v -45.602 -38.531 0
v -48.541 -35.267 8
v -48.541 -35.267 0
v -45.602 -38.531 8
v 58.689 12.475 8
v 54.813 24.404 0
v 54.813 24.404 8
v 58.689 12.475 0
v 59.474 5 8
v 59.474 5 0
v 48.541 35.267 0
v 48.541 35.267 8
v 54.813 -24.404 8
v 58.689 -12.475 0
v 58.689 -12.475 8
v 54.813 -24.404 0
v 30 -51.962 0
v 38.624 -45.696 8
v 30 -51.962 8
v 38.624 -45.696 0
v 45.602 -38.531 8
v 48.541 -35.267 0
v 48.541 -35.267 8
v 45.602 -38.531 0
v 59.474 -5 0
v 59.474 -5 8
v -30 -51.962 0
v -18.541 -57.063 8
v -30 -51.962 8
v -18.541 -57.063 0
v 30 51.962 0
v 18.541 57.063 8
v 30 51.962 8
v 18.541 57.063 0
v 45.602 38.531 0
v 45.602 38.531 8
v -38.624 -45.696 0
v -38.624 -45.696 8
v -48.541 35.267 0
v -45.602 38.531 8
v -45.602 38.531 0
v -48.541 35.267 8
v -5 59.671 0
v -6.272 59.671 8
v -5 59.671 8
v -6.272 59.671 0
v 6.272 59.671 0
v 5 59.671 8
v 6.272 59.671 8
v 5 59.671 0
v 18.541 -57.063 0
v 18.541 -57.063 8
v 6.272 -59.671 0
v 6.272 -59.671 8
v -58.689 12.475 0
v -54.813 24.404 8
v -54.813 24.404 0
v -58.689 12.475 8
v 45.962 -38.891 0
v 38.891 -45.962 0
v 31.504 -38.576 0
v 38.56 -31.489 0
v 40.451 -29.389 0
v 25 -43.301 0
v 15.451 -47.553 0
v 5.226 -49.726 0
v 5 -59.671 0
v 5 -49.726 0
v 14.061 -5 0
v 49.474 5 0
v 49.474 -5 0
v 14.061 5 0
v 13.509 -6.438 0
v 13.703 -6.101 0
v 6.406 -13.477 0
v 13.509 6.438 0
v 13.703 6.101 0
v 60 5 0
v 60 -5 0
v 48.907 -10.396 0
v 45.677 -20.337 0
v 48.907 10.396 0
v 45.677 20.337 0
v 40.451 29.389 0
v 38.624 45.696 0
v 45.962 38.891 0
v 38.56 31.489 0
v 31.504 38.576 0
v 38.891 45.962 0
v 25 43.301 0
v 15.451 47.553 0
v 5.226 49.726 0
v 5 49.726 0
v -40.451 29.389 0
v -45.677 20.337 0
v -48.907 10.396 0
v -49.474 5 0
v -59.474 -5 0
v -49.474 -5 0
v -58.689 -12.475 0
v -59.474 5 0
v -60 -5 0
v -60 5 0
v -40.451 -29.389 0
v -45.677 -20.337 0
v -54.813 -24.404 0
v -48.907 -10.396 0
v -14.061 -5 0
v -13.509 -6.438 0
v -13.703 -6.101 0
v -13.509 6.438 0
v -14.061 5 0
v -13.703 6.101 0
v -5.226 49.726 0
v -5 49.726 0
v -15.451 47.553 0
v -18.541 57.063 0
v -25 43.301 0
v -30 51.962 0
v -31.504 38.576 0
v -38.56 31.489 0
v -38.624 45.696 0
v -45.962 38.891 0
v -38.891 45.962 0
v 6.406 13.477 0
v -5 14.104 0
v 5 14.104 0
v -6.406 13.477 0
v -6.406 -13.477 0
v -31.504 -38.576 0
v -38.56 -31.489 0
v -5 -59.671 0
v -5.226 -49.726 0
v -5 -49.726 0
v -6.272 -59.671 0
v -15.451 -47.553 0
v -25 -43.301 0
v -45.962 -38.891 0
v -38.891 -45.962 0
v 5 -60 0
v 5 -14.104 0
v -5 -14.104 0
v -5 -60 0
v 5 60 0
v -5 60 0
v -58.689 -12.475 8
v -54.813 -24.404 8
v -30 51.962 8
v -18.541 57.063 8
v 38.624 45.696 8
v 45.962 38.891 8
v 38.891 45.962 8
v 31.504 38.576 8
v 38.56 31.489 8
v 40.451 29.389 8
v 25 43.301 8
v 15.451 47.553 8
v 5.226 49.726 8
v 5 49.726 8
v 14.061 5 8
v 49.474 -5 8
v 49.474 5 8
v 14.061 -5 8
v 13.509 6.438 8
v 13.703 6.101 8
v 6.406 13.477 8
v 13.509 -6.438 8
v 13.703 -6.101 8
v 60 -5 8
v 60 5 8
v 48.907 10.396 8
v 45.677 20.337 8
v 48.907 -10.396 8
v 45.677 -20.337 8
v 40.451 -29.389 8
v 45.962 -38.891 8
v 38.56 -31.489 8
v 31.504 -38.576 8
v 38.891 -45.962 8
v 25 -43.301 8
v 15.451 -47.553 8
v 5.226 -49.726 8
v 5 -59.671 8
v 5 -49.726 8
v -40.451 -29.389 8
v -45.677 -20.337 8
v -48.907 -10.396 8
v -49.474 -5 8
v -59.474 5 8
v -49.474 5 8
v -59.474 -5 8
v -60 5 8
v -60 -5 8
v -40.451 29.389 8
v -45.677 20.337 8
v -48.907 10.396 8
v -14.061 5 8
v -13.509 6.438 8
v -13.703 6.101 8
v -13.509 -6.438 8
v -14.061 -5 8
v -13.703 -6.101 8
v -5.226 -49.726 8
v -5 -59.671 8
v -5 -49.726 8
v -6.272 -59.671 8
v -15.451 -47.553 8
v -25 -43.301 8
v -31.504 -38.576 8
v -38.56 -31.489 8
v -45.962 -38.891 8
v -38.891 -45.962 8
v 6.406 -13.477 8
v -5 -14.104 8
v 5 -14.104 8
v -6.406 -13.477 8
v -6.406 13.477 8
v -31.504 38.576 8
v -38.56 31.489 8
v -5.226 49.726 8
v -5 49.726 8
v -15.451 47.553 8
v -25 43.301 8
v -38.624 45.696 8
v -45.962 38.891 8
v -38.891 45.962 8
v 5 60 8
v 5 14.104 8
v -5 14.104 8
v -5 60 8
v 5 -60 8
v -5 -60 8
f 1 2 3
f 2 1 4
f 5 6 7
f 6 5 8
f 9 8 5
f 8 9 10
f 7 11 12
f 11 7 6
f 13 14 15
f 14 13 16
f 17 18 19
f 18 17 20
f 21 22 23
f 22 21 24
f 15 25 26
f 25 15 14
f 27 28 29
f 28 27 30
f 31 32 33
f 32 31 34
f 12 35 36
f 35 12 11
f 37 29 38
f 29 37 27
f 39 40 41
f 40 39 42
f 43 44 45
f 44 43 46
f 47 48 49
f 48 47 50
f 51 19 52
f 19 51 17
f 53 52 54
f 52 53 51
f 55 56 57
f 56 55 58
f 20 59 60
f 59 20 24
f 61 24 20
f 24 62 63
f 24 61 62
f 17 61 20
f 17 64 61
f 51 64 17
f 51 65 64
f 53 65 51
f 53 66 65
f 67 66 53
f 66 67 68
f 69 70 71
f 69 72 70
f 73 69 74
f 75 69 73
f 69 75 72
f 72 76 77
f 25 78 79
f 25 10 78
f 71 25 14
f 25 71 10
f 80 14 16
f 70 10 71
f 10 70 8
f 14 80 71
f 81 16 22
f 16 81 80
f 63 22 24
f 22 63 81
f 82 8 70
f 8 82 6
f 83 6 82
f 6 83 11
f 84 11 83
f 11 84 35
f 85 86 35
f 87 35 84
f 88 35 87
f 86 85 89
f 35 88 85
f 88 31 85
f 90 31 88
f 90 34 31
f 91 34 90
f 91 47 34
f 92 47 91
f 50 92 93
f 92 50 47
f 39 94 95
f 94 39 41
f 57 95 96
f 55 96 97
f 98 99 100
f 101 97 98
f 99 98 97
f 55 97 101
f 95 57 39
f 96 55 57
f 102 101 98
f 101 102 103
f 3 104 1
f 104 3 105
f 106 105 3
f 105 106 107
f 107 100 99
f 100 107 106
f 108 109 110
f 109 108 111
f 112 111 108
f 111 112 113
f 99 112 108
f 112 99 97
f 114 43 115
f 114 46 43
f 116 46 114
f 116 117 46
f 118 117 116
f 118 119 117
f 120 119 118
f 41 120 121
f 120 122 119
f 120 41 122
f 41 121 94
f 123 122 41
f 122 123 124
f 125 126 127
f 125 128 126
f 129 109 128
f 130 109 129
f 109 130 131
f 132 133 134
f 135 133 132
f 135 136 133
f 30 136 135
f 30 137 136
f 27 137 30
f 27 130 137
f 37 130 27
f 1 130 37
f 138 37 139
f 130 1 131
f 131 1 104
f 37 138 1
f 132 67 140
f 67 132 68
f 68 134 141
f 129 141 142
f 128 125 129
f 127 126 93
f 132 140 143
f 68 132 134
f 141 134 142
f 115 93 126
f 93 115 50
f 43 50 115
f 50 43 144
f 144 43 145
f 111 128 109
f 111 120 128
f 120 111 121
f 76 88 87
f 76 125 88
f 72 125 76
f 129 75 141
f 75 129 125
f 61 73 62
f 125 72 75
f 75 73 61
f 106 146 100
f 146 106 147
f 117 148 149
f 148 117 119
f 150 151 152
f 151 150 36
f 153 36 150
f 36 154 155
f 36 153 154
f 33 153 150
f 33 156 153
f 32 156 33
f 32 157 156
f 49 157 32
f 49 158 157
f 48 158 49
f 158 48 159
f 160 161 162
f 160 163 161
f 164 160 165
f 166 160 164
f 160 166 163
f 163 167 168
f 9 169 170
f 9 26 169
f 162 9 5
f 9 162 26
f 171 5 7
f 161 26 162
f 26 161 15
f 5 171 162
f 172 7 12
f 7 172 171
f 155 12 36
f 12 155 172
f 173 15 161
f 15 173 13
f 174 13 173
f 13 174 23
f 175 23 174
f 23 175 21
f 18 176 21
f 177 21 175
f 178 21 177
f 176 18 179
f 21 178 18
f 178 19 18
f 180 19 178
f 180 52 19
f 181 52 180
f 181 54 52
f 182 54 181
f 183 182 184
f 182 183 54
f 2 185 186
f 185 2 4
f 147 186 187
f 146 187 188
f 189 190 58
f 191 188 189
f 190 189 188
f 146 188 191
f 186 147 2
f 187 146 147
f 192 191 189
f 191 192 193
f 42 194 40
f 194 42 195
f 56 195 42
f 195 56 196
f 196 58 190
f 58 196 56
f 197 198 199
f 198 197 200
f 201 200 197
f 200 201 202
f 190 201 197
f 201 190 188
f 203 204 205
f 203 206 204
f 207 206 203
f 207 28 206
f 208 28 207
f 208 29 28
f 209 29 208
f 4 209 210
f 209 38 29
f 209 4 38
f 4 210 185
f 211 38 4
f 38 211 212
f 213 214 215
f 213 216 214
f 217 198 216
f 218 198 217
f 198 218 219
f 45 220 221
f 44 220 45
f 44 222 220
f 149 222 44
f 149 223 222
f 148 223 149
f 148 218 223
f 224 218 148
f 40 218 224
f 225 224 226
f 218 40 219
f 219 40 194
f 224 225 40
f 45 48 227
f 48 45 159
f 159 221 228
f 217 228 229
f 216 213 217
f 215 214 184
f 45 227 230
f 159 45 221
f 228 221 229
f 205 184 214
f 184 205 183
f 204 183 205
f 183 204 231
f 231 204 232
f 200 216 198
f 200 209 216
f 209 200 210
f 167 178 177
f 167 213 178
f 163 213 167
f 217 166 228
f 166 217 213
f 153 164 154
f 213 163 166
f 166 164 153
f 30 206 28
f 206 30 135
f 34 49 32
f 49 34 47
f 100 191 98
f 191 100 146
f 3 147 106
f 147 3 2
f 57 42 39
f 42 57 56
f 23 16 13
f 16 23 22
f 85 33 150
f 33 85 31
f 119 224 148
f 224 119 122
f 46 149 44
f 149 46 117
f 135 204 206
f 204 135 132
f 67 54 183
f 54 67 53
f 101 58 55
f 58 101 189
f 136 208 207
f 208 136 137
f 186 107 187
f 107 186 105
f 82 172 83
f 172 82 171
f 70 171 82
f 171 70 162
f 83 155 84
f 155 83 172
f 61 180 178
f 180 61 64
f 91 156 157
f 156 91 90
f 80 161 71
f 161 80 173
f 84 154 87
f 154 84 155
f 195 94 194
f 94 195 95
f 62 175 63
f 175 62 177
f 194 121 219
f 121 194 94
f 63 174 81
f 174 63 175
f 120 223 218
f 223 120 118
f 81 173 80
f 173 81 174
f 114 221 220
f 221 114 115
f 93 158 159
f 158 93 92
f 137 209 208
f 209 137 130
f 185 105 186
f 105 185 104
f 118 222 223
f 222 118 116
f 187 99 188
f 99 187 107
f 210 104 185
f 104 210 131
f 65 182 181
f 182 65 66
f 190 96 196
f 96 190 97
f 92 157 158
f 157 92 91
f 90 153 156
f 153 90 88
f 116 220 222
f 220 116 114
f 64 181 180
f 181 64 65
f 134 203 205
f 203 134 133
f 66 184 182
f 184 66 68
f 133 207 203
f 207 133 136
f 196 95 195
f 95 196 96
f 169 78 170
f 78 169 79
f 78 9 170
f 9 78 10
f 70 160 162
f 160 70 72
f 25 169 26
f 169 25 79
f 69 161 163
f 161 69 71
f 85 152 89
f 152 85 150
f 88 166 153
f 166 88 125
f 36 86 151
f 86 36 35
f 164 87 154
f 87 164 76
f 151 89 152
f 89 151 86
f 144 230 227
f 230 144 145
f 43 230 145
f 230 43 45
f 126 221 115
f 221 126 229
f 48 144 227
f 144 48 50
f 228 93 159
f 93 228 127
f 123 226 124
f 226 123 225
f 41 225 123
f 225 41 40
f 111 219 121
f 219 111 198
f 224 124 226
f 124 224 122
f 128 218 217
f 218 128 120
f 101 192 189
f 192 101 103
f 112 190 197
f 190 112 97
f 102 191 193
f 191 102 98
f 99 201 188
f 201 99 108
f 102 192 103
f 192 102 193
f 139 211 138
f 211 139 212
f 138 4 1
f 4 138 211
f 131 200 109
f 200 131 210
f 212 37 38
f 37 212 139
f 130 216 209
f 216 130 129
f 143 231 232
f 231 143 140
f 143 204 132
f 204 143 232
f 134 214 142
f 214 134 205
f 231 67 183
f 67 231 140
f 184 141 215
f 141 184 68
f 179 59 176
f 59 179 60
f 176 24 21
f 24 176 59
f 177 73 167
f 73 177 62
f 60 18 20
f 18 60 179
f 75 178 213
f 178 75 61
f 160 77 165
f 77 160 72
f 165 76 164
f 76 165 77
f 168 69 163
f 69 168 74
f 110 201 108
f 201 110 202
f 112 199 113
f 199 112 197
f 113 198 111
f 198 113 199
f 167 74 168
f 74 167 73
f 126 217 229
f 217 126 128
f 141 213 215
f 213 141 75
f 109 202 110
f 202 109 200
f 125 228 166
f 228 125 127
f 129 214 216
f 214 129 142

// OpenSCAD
/* doodle-meta {"version":1,"parameters":{"outer_diameter":{"label":"Outer Diameter","description":"Diameter of the wheel rim","unit":"mm","feature":"outer_diameter"},"thickness":{"label":"Thickness","description":"Thickness of the wheel disc","unit":"mm","feature":"thickness"},"hub_diameter":{"label":"Hub Diameter","description":"Diameter of the central hub","unit":"mm","feature":"hub_diameter"},"spoke_width":{"label":"Spoke Width","description":"Width of each radial spoke","unit":"mm","feature":"spoke_width"},"spoke_count":{"label":"Spoke Count","description":"Number of radial spokes","unit":"count","feature":"spoke_count"}},"features":{"outer_diameter":{"kind":"dimension","axis":"x","label":"Outer Diameter"},"thickness":{"kind":"dimension","axis":"z","label":"Thickness"},"hub_diameter":{"kind":"dimension","axis":"x","label":"Hub Diameter"},"spoke_width":{"kind":"dimension","axis":"x","label":"Spoke Width"},"spoke_count":{"kind":"dimension","axis":"z","label":"Spoke Count"}}} */

// Parameters
outer_diameter = 120.0;
thickness = 8.0;
hub_diameter = 30.0;
spoke_width = 10.0;
spoke_count = 8;

// Derived values
outer_radius = outer_diameter / 2.0;
hub_radius = hub_diameter / 2.0;
rim_thickness = 10.0;
inner_rim_radius = outer_radius - rim_thickness;

module wheel_disc() {
    union() {
        // Outer Rim - ring in XY plane, extruded along Z
        difference() {
            // Outer cylinder along Z axis
            cylinder(h=thickness, r=outer_radius, center=true);
            // Inner cutout along Z axis
            cylinder(h=thickness+2, r=inner_rim_radius, center=true);
        }

        // Central Hub - solid disk along Z axis
        cylinder(h=thickness, r=hub_radius, center=true);

        // Spokes - bars in XY plane, extruded along Z
        for (i = [0 : spoke_count - 1]) {
            rotate([0, 0, i * (360 / spoke_count)]) {
                // Spoke extends from center outward to outer_radius to ensure
                // overlap with both hub and rim
                translate([outer_radius / 2.0, 0, 0]) {
                    cube([outer_radius, spoke_width, thickness], center=true);
                }
            }
        }
    }
}

// Position so the wheel sits on the build plate (lowest Z = 0)
// The wheel face is in XY plane, centered at origin in X and Y.
// Lowest point of the wheel is at Z = -thickness/2, so translate up by thickness/2.
translate([0, 0, thickness/2]) {
    wheel_disc();
}
